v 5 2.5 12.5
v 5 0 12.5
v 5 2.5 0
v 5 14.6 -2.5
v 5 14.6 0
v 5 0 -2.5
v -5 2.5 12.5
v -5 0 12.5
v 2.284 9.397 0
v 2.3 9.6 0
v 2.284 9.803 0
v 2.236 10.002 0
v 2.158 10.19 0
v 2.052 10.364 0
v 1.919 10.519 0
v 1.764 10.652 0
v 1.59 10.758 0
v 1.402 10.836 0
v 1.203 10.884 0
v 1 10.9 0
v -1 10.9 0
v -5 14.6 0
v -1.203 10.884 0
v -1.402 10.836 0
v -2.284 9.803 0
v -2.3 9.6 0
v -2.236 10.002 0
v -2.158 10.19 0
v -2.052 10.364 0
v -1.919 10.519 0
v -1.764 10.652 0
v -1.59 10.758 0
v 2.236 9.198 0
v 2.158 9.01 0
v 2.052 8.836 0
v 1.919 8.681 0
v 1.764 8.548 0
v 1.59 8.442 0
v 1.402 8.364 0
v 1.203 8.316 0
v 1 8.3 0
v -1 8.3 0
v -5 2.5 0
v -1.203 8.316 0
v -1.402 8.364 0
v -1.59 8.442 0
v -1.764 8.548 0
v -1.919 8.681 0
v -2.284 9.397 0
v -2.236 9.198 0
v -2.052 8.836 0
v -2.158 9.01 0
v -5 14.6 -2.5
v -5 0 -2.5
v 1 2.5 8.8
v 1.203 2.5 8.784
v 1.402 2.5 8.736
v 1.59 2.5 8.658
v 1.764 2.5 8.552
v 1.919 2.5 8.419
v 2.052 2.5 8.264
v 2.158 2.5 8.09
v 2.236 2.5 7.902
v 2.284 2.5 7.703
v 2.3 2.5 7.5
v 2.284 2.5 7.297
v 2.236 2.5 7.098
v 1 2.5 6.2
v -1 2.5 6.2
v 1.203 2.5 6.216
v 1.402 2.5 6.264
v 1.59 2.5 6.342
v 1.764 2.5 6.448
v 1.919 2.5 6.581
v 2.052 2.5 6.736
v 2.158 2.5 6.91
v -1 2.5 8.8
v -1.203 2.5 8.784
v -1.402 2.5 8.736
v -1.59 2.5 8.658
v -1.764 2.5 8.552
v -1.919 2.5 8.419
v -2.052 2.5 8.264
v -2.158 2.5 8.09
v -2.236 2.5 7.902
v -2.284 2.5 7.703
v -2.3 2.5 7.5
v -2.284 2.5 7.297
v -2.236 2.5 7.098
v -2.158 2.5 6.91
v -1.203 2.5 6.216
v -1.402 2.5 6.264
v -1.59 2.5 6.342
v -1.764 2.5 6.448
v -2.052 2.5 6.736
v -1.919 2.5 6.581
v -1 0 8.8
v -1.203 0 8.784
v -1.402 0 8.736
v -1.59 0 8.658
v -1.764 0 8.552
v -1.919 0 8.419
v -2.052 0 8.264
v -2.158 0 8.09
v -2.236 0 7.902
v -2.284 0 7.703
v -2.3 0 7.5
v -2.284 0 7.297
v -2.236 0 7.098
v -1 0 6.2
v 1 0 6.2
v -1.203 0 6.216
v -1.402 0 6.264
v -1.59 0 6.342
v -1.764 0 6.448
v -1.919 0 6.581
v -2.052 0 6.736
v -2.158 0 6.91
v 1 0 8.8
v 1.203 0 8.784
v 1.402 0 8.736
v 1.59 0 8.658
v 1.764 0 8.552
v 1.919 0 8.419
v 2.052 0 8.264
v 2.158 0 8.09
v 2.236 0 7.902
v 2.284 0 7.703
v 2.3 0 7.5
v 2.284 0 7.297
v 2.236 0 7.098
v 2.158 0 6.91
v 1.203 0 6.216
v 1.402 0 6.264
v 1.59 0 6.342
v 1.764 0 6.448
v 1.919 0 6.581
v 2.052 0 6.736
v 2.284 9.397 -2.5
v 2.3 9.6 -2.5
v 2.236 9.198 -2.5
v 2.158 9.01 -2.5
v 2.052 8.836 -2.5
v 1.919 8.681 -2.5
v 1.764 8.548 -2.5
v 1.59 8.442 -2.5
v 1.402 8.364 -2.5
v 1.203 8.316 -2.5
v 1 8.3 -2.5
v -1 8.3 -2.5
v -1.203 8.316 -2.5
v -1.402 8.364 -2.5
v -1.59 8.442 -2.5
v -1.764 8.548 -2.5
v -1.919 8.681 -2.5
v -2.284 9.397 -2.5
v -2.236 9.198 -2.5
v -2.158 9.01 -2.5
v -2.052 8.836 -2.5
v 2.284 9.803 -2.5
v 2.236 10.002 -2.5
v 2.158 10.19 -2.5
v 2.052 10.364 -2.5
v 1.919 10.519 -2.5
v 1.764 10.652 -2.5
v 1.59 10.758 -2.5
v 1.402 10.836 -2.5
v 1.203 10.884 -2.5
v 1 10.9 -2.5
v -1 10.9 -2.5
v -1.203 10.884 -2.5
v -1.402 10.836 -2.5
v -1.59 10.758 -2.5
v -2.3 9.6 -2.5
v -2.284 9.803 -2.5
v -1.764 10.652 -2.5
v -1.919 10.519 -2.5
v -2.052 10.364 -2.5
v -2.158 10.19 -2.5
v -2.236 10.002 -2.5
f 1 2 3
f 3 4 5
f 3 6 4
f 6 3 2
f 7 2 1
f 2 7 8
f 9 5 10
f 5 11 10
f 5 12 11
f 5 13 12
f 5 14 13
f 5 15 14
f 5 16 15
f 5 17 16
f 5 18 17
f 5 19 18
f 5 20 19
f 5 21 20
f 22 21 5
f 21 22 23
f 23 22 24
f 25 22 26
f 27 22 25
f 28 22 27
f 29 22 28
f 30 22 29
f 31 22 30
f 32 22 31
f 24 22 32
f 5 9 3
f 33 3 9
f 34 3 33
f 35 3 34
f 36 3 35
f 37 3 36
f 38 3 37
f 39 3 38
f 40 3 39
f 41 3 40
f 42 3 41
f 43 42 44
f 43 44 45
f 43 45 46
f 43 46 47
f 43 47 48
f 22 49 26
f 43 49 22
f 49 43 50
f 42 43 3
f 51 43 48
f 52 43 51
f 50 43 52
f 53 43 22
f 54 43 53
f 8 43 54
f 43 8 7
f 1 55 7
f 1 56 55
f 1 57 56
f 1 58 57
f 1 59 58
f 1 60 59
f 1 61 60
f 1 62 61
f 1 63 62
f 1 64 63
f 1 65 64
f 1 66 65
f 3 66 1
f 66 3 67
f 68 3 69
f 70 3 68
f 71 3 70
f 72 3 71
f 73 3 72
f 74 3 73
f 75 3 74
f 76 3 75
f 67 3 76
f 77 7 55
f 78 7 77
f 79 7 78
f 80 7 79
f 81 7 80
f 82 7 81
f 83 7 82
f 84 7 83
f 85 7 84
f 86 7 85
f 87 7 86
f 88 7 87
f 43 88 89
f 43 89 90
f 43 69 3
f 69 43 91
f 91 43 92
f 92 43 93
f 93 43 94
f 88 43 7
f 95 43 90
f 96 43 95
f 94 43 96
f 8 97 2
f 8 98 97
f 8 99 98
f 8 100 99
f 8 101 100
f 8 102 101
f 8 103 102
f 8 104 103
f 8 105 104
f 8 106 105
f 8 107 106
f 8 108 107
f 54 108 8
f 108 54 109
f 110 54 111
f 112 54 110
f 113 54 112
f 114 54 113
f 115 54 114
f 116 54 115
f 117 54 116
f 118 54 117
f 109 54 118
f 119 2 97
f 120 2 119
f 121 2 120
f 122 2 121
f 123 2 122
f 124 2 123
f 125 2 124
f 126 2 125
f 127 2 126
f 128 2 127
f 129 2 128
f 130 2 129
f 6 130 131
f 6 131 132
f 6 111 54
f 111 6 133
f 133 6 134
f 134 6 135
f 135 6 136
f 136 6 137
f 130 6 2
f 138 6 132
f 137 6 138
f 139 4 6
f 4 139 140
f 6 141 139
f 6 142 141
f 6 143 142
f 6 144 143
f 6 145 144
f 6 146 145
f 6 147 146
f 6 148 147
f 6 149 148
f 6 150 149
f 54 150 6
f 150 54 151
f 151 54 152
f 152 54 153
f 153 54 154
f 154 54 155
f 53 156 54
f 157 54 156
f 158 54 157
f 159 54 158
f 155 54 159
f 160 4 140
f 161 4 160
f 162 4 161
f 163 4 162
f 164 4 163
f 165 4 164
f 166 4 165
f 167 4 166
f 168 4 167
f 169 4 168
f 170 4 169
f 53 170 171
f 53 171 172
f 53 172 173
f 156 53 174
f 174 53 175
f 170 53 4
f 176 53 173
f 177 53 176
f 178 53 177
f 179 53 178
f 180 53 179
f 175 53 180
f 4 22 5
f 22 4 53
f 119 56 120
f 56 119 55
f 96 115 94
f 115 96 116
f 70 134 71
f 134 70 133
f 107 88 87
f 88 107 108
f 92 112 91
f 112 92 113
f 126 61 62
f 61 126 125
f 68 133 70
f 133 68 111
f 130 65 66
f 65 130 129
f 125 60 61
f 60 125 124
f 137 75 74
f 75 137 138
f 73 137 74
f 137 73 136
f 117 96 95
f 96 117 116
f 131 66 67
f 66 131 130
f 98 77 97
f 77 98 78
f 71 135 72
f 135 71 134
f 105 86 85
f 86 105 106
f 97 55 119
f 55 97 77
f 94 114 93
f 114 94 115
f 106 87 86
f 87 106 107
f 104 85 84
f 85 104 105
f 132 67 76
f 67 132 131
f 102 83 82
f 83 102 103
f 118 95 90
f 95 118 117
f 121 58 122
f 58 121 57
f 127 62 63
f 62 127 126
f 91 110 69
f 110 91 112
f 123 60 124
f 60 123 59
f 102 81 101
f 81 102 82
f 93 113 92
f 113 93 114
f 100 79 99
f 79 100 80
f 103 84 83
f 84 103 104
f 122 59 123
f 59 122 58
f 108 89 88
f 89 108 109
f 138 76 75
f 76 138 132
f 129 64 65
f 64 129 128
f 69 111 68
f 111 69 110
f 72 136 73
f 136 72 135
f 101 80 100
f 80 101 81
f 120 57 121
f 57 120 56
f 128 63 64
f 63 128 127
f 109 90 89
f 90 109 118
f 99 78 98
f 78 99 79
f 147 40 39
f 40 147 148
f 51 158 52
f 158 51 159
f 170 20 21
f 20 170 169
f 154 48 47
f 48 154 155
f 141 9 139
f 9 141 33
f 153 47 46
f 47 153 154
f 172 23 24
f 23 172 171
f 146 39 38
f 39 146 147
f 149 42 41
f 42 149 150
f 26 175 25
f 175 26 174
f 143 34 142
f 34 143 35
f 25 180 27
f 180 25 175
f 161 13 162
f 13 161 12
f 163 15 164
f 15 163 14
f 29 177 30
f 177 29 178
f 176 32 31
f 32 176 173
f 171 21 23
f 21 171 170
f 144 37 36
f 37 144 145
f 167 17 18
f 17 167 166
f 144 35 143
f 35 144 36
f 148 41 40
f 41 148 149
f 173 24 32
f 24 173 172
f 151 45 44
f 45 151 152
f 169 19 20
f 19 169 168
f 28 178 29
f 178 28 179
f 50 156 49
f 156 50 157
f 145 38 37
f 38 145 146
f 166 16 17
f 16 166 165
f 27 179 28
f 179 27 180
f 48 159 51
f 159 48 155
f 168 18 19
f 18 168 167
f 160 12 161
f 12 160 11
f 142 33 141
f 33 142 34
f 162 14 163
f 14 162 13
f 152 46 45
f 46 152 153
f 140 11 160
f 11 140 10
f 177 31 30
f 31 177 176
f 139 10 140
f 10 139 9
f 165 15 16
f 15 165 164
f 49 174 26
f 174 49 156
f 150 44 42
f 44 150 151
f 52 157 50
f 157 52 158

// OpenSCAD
// L-bracket: hangs the CF adapter board off the unused external D-sub's
// two mounting screw holes. Print TWO (they are identical/symmetric).
//
//   panel leg  - flat against the inside of the rear panel, screwed through the
//                D-sub mounting hole (the jack-screw hole, usually 4-40 UNC)
//   board leg  - runs back from the panel; the CF board's FRONT mounting hole
//                (the CF-slot edge) screws into it
//
// D-sub holes are 62.0 mm apart, the board's front holes 62.2 mm apart, so
// both holes are SLOTS (sideways) to soak up that and any small offset.
//
// Coordinates: X = sideways (along the panel), Y = away from the panel into
// the case, Z = up. The panel's inside face is the plane Y = 0.

/* [Bracket] */
t          = 2.5;    // material thickness of both legs
leg_w      = 10;     // bracket width (along X)

/* [Panel leg (D-sub hole)] */
panel_hole_d   = 2.6;   // pilot: the screw passes through the D-sub hole and self-taps here
panel_slot     = 2.0;   // sideways slot travel for adjustment (oval hole)
drop           = 7.5;   // D-sub hole centre ABOVE the board-leg's top face (measured)
                        // (negative = hole below it; the leg is then a "Z")
panel_above    = 5;     // material above the hole centre

/* [Board leg (CF board front hole)] */
board_hole_d   = 2.6;   // pilot for an M3 self-tapper (3.2 for a clearance hole)
board_slot     = 2.0;   // sideways slot travel for adjustment (oval hole)
board_gap      = 0;     // gap between the panel leg and the board's CF-slot edge (0 = flush)
board_hole_in  = 7.1;   // board front hole centre, in from its flush (CF-slot) edge (measured)
board_beyond   = 5;     // material past the board hole centre

$fn = 40;

// ---------------------------------------------------------------------------

module slot(d, travel, len) {   // horizontal slot along X, axis along `len`
    hull() for (dx = [-travel / 2, travel / 2])
        translate([dx, 0, 0]) rotate([-90, 0, 0]) cylinder(d = d, h = len);
}
module vslot(d, travel, len) {  // slot along X, axis vertical
    hull() for (dx = [-travel / 2, travel / 2])
        translate([dx, 0, 0]) cylinder(d = d, h = len);
}

setback       = t + board_gap + board_hole_in;   // hole centre from the panel face
board_leg_len = setback + board_beyond;
panel_top     = max(drop + panel_above, t);
panel_bottom  = min(0, drop - panel_above);

difference() {
    union() {
        // panel leg: vertical plate against the panel, Y = 0 .. t
        translate([-leg_w / 2, 0, panel_bottom])
            cube([leg_w, t, panel_top - panel_bottom]);
        // board leg: horizontal plate, top face at Z = 0 (board sits on it)
        translate([-leg_w / 2, 0, -t])
            cube([leg_w, board_leg_len, t]);
    }
    // D-sub screw slot through the panel leg
    translate([0, -0.1, drop]) slot(panel_hole_d, panel_slot, t + 0.2);
    // board screw slot through the board leg
    translate([0, setback, -t - 0.1]) vslot(board_hole_d, board_slot, t + 0.2);
}
